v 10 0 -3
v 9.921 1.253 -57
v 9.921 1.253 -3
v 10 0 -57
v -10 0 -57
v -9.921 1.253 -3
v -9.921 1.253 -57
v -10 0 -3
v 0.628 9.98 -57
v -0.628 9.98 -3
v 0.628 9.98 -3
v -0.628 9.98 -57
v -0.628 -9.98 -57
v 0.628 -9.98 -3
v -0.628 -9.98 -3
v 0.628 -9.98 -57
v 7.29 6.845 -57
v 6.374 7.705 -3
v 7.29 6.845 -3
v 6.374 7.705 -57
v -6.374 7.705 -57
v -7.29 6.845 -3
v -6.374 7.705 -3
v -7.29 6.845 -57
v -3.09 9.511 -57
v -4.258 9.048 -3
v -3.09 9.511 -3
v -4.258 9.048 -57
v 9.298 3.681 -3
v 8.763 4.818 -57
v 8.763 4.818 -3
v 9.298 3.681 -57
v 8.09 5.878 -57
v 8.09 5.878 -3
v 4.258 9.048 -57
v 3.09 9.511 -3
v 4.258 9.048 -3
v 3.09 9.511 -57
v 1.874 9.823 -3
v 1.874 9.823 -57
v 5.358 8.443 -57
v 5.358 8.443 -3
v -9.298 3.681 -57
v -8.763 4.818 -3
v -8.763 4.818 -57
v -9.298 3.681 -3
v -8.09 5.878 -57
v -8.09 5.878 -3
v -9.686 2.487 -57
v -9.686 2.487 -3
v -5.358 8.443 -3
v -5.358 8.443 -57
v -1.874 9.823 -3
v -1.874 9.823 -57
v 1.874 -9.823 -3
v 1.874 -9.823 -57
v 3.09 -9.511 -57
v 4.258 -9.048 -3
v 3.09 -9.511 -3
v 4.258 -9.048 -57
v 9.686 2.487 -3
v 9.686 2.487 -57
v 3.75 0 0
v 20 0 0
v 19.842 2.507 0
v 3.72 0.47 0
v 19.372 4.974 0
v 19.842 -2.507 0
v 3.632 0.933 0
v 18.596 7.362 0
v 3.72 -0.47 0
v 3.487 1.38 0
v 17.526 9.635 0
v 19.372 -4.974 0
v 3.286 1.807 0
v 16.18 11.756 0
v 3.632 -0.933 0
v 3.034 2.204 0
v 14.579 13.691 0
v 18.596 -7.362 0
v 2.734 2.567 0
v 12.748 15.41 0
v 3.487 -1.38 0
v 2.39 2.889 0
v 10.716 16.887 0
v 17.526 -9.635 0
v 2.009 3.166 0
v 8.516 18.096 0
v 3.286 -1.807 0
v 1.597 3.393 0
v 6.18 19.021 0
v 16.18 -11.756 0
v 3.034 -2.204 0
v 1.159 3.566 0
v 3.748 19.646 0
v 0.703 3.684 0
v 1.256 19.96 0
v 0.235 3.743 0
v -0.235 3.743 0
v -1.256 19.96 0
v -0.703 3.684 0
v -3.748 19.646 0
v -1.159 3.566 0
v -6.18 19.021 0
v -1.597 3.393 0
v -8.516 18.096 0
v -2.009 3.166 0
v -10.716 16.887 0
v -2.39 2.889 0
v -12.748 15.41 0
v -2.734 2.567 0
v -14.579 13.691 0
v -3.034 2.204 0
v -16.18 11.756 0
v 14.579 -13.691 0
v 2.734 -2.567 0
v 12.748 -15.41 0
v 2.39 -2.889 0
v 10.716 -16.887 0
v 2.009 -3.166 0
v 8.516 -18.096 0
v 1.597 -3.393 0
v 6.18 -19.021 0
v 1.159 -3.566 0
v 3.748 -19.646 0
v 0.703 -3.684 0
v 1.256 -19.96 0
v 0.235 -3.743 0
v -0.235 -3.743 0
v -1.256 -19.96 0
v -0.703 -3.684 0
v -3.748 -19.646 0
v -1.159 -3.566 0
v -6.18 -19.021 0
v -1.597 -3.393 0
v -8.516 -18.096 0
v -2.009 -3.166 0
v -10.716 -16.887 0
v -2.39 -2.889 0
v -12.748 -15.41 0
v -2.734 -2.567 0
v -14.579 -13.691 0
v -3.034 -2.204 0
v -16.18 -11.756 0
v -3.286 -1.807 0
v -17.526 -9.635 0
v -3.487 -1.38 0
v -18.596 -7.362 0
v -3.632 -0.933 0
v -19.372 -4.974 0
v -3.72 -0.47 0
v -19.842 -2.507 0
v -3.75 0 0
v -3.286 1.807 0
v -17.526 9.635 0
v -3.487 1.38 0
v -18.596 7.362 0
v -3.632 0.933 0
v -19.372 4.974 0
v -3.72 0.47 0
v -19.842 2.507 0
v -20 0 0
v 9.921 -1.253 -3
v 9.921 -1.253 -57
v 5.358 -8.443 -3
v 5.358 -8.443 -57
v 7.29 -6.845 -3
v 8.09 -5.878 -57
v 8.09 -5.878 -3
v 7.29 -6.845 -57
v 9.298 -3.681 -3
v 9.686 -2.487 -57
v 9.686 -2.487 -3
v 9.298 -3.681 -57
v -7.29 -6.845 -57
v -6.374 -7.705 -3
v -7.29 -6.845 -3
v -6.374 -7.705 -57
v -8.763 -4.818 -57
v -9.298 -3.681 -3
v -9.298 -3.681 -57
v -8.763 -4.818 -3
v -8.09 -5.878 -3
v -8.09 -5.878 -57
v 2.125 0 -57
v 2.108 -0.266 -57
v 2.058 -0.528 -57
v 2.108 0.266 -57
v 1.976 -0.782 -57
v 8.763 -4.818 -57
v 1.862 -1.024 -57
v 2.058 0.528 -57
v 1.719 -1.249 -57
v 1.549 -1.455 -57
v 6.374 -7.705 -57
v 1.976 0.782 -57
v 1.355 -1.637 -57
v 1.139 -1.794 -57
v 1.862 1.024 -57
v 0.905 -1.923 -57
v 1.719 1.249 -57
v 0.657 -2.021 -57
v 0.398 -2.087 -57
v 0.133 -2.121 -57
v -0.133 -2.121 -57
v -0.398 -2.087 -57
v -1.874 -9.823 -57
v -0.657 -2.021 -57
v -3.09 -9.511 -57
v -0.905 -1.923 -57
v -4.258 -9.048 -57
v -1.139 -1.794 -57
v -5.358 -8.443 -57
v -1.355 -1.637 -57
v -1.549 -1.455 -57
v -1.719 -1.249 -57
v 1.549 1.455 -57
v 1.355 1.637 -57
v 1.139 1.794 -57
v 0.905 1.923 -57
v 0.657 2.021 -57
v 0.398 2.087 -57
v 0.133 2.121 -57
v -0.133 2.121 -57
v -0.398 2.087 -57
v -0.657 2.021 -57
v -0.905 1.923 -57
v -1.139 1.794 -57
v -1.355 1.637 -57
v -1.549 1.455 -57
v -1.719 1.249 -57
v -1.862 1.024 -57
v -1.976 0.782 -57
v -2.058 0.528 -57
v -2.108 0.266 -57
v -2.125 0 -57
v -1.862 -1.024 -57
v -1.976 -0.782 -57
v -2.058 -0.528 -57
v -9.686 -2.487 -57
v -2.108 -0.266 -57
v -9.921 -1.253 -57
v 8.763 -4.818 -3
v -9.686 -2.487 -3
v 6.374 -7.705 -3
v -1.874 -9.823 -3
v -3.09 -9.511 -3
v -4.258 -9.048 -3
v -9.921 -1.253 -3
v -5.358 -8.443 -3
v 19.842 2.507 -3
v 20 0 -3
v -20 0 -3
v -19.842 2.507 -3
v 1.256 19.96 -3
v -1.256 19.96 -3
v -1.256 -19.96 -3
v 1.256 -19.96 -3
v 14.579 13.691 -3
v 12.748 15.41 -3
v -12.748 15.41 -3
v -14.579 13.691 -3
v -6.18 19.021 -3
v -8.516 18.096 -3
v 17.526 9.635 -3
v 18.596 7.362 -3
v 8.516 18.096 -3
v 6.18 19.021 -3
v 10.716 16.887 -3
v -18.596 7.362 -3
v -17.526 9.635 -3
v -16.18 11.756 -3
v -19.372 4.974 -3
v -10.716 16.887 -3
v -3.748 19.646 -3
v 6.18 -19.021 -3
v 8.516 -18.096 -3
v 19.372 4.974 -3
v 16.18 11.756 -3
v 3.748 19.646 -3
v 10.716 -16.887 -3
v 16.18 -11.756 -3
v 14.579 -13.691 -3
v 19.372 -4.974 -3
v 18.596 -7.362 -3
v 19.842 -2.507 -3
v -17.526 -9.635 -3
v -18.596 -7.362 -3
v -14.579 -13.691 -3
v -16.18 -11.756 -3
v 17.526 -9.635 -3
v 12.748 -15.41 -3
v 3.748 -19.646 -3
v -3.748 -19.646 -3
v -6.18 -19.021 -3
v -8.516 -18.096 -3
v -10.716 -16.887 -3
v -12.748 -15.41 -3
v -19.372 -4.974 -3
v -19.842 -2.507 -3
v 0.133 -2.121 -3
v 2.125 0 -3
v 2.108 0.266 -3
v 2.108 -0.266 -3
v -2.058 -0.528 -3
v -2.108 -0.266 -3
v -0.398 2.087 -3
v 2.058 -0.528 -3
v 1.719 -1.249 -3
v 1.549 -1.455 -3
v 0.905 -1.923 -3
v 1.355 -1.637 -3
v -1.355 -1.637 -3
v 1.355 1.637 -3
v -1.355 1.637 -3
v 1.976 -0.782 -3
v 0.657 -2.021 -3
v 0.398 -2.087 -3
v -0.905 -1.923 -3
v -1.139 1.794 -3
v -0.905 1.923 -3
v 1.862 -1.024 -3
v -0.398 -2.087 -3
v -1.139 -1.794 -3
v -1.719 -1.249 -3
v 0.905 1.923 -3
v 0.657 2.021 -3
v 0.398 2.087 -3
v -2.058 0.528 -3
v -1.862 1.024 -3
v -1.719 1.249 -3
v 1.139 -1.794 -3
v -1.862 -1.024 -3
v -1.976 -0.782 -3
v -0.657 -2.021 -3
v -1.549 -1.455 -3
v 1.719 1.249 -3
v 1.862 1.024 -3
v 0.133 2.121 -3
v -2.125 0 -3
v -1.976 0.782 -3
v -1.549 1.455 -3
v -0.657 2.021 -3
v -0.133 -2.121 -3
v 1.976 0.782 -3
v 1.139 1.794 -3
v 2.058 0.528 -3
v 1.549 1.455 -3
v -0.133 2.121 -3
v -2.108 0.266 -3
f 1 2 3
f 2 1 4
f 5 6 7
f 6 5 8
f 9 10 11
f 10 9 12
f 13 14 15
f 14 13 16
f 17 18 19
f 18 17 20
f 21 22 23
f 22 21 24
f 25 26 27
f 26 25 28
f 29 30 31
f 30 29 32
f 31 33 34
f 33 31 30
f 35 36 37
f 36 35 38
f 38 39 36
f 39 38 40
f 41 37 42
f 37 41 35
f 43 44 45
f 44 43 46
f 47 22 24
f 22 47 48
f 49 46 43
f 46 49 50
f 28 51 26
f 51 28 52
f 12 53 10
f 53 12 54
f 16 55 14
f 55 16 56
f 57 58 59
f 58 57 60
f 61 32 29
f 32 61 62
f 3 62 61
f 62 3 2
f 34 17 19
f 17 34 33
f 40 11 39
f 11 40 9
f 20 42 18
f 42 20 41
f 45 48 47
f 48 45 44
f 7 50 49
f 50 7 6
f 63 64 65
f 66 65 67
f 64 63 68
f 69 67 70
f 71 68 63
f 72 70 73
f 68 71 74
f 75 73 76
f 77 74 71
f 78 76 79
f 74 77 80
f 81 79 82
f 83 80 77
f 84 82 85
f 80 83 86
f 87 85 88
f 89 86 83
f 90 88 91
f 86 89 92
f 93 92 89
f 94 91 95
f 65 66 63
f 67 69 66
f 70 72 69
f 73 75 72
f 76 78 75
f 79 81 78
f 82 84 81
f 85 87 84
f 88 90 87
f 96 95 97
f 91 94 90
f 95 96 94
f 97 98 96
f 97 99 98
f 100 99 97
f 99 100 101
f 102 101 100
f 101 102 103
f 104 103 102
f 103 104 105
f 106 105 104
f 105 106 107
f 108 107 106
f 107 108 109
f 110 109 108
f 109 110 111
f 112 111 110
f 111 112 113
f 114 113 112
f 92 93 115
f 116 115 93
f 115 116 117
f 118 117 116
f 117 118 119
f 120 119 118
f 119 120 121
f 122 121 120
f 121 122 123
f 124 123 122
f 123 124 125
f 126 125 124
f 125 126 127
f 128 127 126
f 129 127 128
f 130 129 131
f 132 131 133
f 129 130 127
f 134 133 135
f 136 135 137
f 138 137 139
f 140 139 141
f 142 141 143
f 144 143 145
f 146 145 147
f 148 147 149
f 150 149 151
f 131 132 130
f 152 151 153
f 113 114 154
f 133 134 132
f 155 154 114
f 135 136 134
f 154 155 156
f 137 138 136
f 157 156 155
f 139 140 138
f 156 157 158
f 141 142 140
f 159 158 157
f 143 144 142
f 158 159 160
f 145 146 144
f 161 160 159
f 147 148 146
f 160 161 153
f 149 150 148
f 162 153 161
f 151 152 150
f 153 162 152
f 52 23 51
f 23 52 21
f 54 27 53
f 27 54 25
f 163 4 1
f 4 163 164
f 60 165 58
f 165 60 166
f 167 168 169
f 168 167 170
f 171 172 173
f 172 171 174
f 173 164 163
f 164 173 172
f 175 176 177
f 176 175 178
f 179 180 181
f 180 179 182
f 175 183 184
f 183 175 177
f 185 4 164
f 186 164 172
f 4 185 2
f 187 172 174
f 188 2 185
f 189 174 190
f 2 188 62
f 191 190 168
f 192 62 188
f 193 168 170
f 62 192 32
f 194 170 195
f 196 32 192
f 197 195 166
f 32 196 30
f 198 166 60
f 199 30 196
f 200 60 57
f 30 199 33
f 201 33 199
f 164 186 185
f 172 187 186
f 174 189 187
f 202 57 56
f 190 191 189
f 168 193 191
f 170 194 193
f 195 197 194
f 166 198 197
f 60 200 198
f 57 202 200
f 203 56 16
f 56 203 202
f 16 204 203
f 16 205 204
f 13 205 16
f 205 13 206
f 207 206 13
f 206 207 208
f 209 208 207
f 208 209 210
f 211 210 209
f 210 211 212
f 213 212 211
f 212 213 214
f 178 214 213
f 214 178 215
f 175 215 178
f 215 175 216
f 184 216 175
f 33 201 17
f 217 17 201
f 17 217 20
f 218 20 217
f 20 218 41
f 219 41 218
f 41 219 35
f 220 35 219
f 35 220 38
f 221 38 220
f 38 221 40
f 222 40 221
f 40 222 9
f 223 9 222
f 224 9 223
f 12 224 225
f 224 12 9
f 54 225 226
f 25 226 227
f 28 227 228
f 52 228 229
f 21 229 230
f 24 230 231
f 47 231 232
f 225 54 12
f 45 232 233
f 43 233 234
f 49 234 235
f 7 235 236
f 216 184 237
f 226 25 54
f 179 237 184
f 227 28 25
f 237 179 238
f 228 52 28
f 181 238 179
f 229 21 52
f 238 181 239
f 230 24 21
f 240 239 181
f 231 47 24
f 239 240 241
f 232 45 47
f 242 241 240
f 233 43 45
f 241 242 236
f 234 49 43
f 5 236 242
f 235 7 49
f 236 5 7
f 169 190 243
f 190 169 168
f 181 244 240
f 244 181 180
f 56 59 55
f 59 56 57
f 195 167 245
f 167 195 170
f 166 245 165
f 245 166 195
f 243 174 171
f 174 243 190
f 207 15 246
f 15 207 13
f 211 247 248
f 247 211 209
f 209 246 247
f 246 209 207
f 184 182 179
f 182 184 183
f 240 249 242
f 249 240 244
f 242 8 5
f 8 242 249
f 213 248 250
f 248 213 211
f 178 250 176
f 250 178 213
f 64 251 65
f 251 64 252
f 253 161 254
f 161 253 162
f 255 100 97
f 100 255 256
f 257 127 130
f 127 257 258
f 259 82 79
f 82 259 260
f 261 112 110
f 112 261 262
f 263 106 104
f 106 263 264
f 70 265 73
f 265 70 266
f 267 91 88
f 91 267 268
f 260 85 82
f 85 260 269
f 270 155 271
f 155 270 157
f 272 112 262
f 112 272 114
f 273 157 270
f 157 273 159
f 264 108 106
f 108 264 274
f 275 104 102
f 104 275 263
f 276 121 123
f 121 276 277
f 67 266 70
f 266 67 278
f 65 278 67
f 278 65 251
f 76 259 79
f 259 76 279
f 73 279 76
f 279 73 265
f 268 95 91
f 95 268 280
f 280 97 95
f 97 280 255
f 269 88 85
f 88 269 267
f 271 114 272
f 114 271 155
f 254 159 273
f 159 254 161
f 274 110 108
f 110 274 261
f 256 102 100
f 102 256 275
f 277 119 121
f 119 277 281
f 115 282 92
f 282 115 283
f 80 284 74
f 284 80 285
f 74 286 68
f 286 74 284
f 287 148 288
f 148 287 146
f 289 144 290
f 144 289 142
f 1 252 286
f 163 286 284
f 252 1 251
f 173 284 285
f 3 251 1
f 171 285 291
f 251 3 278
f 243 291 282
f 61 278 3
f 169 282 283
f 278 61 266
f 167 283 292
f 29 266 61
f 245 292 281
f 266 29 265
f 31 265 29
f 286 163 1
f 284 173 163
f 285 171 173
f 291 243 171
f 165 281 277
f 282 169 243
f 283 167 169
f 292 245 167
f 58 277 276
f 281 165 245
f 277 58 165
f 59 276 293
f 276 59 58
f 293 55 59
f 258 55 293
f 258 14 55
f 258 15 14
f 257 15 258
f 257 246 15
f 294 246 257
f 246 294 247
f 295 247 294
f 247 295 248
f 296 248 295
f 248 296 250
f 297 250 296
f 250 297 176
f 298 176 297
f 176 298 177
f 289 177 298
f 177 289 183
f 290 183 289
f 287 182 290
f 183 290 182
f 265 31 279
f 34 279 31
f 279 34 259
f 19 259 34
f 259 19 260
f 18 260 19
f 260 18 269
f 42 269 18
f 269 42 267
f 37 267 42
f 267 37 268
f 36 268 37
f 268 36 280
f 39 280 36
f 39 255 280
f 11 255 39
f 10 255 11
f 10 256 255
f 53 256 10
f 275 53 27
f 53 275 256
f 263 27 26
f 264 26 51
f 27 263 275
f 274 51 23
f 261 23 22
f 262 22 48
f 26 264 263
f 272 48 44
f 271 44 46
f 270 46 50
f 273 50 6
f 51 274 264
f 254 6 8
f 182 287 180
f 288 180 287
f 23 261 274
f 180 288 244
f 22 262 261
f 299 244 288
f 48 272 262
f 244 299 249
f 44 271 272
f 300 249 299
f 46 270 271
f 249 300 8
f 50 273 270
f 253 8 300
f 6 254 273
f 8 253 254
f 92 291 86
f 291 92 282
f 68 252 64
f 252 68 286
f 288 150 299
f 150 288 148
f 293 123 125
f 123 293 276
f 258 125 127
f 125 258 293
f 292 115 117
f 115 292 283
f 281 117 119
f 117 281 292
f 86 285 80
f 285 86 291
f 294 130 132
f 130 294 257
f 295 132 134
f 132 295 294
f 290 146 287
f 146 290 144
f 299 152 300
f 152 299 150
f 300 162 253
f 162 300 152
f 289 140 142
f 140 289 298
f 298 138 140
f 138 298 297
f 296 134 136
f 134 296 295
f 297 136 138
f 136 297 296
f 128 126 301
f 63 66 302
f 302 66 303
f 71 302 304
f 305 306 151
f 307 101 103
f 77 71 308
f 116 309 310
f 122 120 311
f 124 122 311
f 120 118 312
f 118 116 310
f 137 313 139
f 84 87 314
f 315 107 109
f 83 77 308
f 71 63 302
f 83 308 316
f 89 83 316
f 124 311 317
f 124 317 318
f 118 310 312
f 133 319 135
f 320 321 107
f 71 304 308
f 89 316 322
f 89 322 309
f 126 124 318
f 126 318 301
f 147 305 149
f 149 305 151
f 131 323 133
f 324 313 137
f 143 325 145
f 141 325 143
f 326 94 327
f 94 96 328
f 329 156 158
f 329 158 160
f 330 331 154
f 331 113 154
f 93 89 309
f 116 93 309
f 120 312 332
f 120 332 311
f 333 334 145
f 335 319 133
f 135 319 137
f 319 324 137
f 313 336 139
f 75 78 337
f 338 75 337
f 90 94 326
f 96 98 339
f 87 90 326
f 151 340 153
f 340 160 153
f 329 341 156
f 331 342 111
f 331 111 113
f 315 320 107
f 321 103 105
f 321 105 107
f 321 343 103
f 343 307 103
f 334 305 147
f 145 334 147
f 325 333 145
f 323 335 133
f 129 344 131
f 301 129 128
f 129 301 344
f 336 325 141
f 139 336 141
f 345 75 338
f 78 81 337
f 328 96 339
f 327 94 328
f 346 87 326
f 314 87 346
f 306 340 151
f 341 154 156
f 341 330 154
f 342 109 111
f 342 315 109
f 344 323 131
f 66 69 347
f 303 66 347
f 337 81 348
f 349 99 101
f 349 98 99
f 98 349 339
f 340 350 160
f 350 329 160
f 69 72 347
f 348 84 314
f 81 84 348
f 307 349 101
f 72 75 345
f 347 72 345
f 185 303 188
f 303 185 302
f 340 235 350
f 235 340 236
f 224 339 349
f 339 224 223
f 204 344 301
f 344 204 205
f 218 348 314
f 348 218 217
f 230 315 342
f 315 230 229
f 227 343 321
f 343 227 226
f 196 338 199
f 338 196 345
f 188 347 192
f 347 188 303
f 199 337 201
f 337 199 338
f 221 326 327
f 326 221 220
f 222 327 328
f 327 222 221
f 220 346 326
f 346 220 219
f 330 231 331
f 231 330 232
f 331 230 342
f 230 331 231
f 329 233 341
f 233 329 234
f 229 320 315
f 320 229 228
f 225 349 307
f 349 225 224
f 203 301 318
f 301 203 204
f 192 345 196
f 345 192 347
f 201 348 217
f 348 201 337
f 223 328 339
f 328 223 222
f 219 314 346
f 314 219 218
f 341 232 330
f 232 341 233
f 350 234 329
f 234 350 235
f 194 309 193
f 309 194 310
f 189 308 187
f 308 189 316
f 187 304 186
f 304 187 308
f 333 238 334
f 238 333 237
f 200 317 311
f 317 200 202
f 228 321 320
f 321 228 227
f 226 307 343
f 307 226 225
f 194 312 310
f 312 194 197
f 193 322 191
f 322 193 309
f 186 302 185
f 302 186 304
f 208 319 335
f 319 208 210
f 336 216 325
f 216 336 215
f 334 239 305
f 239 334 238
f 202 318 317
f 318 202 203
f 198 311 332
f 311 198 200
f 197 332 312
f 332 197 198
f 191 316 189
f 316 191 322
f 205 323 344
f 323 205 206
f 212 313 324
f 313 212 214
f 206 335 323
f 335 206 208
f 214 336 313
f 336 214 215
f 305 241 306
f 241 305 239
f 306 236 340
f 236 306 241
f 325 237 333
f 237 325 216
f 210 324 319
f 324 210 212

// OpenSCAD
$fn = 50;


difference() {
	union() {
		translate(v = [0, 0, -57.0000000000]) {
			cylinder(h = 57, r = 10.0000000000);
		}
		translate(v = [0, 0, -3.0000000000]) {
			cylinder(h = 3, r = 20.0000000000);
		}
	}
	union() {
		translate(v = [0, 0, 0]) {
			rotate(a = [0, 0, 0]) {
				difference() {
					union() {
						#translate(v = [0, 0, -57.0000000000]) {
							cylinder(h = 57, r = 2.0000000000);
						}
						#translate(v = [0, 0, -3]) {
							cylinder(h = 3, r1 = 2.1250000000, r2 = 3.7500000000);
						}
						#translate(v = [0, 0, -57.0000000000]) {
							cylinder(h = 57, r = 2.1250000000);
						}
						#translate(v = [0, 0, -57.0000000000]) {
							cylinder(h = 57, r = 2.0000000000);
						}
					}
					union();
				}
			}
		}
	}
}
